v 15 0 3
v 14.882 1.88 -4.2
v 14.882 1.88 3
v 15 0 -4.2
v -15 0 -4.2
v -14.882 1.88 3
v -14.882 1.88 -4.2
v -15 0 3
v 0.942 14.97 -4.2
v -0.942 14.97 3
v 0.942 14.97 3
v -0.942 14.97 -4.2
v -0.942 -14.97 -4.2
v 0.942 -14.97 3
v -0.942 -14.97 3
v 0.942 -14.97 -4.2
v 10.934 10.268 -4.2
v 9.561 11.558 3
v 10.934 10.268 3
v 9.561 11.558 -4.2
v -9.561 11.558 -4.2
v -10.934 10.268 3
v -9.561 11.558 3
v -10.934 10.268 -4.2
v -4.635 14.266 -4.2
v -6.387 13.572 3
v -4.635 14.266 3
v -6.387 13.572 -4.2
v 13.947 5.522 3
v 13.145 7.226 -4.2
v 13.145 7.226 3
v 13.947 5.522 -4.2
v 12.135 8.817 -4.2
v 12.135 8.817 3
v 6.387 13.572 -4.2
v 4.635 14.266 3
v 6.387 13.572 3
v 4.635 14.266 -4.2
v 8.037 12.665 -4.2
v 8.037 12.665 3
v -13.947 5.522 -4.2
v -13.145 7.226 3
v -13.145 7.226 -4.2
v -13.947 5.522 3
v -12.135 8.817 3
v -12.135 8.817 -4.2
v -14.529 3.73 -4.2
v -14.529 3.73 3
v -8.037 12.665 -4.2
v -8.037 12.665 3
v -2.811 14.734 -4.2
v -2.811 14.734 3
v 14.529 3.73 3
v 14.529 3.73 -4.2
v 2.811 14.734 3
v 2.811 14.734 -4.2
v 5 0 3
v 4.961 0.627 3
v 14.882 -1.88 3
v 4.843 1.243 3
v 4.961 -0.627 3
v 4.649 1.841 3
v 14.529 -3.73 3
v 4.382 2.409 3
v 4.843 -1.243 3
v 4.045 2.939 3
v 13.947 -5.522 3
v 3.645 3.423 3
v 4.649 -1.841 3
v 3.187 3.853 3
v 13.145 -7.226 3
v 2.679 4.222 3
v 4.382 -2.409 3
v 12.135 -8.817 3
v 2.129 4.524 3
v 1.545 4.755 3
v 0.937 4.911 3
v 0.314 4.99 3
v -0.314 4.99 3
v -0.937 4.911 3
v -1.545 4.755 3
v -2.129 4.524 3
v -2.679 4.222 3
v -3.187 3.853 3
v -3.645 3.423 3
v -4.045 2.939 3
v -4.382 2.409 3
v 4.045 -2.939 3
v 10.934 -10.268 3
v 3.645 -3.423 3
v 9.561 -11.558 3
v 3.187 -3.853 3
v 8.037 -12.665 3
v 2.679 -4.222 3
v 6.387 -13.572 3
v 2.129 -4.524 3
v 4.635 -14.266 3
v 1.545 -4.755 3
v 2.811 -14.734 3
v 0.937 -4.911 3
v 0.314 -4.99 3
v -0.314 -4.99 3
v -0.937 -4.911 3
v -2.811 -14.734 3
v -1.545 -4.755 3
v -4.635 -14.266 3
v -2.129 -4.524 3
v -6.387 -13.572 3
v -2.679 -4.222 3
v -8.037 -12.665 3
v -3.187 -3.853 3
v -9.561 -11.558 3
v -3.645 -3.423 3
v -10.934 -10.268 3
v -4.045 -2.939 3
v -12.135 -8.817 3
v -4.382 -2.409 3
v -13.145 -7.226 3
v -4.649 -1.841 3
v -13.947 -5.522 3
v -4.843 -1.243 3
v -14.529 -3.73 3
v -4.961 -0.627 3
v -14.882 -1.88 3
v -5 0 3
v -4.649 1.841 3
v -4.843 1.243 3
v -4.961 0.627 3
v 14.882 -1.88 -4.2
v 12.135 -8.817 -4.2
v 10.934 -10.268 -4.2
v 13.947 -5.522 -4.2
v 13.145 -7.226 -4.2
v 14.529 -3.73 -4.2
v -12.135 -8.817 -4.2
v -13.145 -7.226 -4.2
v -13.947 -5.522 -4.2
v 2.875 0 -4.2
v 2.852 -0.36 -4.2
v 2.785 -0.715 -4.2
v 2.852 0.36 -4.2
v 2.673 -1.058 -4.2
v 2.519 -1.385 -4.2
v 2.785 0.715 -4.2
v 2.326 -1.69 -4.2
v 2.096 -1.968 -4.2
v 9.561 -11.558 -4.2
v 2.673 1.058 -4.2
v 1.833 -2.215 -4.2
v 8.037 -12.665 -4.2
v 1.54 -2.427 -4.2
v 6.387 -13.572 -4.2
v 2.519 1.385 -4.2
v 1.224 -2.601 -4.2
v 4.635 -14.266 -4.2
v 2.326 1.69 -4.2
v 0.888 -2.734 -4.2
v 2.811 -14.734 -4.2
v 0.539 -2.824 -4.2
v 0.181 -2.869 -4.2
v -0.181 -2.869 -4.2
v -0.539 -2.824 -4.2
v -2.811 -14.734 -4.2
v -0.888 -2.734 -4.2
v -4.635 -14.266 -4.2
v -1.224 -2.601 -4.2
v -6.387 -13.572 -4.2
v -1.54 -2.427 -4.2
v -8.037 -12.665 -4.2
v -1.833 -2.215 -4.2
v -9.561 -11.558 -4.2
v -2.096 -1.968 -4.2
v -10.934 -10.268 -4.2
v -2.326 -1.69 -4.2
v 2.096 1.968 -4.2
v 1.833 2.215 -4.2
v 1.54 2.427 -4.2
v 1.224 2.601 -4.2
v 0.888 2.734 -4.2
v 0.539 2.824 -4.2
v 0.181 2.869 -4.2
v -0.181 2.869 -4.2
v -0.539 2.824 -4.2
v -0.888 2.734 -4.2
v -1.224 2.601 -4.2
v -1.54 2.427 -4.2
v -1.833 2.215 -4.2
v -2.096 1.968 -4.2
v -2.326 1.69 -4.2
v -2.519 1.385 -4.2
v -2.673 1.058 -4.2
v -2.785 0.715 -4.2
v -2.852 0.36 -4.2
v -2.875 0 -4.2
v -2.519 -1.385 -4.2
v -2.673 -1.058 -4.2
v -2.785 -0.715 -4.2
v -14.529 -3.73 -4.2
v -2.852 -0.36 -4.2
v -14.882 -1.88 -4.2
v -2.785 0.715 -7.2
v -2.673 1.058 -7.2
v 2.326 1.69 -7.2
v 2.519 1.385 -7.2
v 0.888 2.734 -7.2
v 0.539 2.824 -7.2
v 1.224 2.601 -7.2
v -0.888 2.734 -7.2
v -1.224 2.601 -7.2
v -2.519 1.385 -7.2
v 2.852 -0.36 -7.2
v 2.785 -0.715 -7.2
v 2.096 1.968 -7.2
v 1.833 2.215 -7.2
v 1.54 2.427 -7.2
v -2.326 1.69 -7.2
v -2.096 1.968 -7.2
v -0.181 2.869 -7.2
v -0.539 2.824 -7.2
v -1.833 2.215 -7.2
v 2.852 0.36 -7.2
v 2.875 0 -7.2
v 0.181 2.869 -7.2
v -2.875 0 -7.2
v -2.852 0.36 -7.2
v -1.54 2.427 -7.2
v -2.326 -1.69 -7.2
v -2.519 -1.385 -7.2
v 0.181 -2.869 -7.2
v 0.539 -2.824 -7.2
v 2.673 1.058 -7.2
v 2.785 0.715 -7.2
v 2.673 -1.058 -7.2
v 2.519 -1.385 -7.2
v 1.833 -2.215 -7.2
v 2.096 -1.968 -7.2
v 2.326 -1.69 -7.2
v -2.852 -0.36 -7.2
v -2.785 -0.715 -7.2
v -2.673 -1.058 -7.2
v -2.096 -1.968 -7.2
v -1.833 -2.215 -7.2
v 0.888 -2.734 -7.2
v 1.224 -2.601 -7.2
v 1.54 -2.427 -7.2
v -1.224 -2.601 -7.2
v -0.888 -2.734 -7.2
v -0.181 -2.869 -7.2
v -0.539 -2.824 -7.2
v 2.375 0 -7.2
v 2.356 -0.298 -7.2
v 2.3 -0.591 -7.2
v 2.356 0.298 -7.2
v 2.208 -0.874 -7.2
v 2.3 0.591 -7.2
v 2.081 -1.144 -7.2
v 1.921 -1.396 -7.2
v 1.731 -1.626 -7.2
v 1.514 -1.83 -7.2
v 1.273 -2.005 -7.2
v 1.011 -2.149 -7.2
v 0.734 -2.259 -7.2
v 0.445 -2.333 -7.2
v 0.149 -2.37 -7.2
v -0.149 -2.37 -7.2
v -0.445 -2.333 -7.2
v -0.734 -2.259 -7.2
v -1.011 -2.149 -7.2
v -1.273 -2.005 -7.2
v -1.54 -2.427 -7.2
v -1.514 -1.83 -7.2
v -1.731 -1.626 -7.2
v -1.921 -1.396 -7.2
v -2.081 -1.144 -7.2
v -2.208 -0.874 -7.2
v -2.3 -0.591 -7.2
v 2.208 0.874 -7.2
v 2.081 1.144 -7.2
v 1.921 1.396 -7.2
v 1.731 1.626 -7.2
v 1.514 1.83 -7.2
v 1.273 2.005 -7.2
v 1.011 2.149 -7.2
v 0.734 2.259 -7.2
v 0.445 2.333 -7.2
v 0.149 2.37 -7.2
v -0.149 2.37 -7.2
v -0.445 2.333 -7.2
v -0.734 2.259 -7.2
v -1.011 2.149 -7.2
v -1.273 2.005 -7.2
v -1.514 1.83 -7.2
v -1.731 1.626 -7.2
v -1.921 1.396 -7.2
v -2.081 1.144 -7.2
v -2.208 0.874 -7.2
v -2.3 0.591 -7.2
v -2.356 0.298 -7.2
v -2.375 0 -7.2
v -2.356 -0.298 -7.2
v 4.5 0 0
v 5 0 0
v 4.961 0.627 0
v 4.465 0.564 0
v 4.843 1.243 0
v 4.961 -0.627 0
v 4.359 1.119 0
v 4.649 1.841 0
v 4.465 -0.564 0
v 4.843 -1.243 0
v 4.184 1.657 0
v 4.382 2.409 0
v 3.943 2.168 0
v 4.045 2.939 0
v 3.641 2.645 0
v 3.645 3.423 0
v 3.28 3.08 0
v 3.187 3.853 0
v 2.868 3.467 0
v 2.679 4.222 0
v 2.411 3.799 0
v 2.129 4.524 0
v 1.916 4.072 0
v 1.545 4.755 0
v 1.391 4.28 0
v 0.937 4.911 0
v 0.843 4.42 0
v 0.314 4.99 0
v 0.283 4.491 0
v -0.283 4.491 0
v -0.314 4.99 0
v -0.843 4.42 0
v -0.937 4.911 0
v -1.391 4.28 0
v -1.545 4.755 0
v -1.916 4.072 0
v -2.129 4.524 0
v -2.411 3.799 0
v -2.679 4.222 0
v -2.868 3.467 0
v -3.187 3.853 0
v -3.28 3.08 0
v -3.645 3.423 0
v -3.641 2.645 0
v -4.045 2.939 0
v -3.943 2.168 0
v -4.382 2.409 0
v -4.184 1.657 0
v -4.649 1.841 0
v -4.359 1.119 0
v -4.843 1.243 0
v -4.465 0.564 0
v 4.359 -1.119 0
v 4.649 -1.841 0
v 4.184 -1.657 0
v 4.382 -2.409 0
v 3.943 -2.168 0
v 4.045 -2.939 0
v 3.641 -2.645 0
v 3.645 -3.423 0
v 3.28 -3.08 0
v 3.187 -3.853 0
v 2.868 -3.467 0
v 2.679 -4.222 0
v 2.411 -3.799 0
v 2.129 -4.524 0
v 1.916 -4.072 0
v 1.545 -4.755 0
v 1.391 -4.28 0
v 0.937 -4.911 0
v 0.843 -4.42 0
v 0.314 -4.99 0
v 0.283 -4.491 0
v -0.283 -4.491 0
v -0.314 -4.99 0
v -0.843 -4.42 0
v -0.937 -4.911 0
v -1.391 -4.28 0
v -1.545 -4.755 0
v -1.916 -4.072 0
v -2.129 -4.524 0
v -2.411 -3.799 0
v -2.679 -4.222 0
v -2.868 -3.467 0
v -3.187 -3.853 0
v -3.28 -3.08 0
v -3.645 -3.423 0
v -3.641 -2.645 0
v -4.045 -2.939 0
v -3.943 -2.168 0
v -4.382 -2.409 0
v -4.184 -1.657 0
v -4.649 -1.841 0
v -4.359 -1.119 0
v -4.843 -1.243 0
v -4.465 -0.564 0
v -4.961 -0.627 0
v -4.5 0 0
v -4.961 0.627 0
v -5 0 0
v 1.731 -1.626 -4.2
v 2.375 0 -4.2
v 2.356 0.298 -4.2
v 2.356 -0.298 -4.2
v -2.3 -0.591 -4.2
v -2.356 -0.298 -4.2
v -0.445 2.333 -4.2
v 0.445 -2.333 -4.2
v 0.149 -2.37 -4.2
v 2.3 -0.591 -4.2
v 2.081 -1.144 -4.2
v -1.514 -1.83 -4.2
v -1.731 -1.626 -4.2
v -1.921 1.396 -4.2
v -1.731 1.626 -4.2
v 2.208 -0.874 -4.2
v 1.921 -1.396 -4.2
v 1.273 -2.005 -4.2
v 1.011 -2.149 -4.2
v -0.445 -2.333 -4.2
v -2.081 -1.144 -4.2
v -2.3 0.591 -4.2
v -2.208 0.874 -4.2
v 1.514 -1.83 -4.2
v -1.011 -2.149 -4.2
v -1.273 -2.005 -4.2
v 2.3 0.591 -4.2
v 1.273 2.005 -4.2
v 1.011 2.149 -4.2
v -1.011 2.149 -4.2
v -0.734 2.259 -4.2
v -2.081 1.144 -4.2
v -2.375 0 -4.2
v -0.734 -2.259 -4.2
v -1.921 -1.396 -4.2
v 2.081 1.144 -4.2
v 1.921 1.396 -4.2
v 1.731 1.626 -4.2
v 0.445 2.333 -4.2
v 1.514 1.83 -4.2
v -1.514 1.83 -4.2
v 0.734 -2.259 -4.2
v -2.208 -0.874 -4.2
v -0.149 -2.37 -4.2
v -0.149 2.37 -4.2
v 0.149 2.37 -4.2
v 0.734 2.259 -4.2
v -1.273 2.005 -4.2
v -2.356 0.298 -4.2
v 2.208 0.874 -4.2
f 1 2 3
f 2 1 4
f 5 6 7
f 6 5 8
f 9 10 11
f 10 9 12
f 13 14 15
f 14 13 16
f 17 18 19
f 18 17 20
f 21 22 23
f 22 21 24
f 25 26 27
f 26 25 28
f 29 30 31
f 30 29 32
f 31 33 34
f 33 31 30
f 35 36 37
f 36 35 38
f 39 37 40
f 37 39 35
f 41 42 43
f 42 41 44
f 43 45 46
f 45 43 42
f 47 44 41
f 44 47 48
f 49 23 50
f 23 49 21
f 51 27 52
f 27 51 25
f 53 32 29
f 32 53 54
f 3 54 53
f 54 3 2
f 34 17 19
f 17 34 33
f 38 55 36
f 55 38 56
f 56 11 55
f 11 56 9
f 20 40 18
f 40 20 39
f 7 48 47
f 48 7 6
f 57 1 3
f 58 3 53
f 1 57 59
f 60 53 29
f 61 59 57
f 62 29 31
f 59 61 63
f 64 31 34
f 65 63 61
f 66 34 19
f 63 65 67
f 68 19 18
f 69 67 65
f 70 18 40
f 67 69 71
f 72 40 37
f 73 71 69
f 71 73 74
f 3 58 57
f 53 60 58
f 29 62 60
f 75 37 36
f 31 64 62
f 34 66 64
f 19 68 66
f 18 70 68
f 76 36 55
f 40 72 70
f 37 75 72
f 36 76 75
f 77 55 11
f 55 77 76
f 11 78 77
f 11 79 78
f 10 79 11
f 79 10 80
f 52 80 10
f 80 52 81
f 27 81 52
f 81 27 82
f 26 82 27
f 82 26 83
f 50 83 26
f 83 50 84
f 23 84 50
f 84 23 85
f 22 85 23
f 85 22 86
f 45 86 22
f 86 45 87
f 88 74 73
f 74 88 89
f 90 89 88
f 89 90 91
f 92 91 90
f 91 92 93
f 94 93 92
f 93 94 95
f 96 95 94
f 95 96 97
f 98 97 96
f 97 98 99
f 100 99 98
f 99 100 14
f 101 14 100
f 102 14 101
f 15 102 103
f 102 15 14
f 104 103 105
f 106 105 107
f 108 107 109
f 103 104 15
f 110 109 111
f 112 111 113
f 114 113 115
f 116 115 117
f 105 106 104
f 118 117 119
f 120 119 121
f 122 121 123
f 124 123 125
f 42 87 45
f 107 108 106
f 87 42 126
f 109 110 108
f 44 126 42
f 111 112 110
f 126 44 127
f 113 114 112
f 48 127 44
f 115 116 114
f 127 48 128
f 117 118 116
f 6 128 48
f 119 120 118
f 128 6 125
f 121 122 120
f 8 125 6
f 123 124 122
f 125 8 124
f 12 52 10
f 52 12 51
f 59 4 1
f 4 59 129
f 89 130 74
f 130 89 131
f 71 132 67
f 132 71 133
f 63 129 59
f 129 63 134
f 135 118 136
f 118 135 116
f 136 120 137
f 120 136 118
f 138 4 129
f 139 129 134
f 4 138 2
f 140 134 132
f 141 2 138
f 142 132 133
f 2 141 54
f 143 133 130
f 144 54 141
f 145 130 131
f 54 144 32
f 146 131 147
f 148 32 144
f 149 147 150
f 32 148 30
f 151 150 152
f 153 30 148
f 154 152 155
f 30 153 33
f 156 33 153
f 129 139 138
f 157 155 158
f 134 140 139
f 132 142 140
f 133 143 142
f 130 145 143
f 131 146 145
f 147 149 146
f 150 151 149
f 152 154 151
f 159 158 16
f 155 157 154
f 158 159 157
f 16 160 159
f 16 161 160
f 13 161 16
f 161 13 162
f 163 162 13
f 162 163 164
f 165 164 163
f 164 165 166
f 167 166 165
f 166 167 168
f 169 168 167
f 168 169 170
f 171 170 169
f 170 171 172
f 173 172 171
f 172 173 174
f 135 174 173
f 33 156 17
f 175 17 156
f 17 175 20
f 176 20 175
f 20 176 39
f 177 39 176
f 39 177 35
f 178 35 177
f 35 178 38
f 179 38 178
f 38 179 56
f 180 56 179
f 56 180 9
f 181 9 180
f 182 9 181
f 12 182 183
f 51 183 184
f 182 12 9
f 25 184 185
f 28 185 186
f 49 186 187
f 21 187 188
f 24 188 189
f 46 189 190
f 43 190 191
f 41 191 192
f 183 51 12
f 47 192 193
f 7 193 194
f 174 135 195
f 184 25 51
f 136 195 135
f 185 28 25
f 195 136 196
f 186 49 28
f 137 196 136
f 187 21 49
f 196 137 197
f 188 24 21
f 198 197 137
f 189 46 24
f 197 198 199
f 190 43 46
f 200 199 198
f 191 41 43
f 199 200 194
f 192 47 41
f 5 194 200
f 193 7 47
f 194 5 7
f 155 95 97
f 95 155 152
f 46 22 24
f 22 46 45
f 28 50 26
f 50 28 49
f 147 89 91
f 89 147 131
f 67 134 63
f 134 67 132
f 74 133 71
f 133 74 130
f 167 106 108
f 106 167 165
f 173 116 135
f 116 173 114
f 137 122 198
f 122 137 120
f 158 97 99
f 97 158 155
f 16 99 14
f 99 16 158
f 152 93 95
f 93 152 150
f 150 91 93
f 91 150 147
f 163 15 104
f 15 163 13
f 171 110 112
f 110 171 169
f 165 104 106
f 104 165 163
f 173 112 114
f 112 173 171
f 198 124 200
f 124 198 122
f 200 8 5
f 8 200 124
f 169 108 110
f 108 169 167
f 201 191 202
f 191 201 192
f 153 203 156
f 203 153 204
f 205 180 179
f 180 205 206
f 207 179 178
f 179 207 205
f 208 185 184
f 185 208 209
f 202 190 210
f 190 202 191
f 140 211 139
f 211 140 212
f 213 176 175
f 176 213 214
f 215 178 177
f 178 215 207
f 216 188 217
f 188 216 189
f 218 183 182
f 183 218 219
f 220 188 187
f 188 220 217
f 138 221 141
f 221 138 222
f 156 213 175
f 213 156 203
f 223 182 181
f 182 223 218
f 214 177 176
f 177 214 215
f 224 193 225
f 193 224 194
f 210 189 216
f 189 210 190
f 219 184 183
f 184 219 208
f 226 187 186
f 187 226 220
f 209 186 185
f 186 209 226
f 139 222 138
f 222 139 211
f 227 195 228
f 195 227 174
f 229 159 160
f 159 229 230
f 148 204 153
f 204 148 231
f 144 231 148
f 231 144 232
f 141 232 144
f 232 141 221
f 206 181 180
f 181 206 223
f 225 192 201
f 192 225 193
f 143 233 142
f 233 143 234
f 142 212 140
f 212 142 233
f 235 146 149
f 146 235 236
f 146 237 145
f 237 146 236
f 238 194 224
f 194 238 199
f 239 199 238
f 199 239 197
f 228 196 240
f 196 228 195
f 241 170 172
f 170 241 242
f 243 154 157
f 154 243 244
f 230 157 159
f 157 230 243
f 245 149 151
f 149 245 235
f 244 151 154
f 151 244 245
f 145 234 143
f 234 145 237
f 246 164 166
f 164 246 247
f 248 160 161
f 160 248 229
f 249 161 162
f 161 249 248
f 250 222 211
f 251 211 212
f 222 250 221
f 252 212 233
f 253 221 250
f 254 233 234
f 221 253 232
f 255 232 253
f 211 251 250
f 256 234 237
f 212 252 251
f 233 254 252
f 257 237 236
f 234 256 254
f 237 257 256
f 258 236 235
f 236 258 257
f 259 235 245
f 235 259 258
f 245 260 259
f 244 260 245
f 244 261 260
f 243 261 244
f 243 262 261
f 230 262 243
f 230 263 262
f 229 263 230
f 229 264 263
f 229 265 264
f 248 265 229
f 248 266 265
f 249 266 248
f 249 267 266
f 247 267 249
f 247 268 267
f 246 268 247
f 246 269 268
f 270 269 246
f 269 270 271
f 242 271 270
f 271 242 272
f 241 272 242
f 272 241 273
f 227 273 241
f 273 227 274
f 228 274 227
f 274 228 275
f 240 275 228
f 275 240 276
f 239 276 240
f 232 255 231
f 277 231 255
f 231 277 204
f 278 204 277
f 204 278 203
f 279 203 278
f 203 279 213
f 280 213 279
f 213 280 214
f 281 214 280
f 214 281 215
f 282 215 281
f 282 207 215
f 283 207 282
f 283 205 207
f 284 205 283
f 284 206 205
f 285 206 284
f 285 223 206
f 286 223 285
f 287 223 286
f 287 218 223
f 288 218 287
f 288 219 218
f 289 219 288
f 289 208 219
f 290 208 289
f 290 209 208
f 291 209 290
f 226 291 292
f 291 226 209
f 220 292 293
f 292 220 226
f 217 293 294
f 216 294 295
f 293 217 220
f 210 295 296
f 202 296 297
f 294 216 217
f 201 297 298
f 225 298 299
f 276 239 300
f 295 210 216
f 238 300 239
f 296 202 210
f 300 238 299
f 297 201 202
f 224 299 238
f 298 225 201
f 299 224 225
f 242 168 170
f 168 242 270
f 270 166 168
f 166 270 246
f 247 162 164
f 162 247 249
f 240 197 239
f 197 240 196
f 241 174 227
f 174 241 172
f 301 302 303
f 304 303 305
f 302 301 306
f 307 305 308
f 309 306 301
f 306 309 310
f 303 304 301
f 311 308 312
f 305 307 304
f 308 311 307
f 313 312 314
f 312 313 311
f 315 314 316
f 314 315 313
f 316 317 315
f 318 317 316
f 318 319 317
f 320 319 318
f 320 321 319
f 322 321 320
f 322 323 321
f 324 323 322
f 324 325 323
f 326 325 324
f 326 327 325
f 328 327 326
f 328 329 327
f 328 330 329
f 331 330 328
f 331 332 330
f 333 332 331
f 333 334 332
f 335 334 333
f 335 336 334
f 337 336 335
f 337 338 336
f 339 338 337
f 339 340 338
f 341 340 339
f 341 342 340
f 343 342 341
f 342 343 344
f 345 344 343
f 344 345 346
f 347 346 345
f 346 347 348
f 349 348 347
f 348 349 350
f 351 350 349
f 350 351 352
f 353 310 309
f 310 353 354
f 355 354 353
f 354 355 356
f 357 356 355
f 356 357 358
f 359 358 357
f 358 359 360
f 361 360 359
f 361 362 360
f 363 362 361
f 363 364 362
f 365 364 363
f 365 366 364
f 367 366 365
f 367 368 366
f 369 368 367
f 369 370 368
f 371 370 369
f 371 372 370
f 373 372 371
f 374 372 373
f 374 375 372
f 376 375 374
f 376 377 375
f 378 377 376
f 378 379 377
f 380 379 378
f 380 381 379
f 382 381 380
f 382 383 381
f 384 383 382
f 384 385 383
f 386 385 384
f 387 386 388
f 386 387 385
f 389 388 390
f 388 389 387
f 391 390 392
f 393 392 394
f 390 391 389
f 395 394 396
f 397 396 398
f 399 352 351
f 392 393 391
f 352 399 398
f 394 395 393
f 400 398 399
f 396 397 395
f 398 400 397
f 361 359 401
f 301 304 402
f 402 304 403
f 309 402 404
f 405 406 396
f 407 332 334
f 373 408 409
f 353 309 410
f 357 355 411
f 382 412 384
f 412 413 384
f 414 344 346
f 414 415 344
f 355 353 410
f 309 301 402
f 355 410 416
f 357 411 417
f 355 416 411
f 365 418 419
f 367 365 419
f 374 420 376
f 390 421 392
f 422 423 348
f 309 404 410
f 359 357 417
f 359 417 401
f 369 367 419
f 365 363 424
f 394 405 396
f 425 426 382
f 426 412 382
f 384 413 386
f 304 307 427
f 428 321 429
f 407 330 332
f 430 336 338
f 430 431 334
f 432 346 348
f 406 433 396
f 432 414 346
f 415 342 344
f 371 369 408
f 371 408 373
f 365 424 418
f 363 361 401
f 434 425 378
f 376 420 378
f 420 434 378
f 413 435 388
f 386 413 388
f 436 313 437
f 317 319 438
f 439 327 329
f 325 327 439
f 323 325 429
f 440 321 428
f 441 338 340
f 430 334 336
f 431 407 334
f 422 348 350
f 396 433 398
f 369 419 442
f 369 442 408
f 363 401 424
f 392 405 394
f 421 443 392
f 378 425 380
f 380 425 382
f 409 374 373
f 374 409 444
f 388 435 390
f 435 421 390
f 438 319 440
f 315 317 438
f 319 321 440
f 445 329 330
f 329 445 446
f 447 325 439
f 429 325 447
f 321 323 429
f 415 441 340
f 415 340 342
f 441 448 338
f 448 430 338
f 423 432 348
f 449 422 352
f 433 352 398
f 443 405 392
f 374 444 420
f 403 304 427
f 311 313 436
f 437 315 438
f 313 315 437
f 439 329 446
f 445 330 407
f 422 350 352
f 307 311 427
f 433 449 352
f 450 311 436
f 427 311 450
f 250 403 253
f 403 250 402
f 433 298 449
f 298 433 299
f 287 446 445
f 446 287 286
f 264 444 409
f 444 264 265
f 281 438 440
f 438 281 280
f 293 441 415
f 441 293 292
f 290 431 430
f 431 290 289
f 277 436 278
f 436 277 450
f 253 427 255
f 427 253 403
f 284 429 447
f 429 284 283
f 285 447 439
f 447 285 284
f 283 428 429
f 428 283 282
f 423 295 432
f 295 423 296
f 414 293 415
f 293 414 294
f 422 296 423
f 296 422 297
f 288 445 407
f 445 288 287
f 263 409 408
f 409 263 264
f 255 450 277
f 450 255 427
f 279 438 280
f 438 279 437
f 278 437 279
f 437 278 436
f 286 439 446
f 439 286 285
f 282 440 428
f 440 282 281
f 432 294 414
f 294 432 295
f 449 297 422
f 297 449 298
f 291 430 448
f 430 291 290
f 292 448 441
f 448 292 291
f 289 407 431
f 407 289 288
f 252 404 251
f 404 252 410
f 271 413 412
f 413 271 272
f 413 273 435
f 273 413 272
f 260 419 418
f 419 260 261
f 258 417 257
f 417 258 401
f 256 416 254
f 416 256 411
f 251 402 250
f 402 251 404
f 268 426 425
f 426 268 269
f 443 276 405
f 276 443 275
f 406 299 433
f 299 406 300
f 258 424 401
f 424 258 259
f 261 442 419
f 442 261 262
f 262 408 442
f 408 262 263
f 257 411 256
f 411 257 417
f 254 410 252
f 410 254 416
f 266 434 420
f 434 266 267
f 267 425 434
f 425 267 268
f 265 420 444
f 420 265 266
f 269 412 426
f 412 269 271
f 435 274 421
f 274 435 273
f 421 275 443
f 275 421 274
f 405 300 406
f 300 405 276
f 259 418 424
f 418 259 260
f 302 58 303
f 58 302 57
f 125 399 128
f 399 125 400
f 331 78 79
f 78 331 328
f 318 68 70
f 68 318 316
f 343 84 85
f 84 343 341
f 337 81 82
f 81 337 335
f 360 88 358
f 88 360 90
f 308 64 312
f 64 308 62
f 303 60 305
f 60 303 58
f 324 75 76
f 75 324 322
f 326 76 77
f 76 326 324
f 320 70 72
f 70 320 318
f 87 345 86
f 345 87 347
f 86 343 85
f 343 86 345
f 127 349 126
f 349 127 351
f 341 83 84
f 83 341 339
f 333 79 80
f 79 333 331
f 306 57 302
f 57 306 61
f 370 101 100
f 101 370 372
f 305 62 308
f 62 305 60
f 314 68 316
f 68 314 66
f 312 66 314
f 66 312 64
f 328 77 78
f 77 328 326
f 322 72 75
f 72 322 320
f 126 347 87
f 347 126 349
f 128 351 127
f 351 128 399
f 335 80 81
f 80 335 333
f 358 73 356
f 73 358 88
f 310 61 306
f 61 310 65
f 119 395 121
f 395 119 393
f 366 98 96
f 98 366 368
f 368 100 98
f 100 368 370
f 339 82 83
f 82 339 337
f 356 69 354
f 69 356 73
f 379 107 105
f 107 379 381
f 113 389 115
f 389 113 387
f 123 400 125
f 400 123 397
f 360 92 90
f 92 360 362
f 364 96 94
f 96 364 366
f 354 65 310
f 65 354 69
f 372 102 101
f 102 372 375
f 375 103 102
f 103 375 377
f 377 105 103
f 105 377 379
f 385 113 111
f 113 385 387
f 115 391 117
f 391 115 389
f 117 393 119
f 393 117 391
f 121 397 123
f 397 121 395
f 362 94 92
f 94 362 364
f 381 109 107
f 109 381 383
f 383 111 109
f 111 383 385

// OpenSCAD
$fn = 50;

difference() {
	union() {
		translate(v = [0, 0, -4.2]) {
			cylinder(h = 7.2, r = 15.0);
		}
		#translate(v = [0, 0, -7.2]) {
			cylinder(h = 7.2, r = 2.875);
		}
	}
	union() {
		translate(v = [0, 0, 0]) {
			rotate(a = [0, 0, 0]) {
				difference() {
					union() {
						translate(v = [0, 0, -7.2]) {
							cylinder(h = 7.2, r = 2.25);
						}
						translate(v = [0, 0, -4.2]) {
							cylinder(h = 4.2, r1 = 2.375, r2 = 4.5);
						}
						translate(v = [0, 0, -7.2]) {
							cylinder(h = 7.2, r = 2.375);
						}
						translate(v = [0, 0, -7.2]) {
							cylinder(h = 7.2, r = 2.25);
						}
					}
					union();
				}
			}
		}
		#cylinder(h = 3, r = 5.0);
	}
}
